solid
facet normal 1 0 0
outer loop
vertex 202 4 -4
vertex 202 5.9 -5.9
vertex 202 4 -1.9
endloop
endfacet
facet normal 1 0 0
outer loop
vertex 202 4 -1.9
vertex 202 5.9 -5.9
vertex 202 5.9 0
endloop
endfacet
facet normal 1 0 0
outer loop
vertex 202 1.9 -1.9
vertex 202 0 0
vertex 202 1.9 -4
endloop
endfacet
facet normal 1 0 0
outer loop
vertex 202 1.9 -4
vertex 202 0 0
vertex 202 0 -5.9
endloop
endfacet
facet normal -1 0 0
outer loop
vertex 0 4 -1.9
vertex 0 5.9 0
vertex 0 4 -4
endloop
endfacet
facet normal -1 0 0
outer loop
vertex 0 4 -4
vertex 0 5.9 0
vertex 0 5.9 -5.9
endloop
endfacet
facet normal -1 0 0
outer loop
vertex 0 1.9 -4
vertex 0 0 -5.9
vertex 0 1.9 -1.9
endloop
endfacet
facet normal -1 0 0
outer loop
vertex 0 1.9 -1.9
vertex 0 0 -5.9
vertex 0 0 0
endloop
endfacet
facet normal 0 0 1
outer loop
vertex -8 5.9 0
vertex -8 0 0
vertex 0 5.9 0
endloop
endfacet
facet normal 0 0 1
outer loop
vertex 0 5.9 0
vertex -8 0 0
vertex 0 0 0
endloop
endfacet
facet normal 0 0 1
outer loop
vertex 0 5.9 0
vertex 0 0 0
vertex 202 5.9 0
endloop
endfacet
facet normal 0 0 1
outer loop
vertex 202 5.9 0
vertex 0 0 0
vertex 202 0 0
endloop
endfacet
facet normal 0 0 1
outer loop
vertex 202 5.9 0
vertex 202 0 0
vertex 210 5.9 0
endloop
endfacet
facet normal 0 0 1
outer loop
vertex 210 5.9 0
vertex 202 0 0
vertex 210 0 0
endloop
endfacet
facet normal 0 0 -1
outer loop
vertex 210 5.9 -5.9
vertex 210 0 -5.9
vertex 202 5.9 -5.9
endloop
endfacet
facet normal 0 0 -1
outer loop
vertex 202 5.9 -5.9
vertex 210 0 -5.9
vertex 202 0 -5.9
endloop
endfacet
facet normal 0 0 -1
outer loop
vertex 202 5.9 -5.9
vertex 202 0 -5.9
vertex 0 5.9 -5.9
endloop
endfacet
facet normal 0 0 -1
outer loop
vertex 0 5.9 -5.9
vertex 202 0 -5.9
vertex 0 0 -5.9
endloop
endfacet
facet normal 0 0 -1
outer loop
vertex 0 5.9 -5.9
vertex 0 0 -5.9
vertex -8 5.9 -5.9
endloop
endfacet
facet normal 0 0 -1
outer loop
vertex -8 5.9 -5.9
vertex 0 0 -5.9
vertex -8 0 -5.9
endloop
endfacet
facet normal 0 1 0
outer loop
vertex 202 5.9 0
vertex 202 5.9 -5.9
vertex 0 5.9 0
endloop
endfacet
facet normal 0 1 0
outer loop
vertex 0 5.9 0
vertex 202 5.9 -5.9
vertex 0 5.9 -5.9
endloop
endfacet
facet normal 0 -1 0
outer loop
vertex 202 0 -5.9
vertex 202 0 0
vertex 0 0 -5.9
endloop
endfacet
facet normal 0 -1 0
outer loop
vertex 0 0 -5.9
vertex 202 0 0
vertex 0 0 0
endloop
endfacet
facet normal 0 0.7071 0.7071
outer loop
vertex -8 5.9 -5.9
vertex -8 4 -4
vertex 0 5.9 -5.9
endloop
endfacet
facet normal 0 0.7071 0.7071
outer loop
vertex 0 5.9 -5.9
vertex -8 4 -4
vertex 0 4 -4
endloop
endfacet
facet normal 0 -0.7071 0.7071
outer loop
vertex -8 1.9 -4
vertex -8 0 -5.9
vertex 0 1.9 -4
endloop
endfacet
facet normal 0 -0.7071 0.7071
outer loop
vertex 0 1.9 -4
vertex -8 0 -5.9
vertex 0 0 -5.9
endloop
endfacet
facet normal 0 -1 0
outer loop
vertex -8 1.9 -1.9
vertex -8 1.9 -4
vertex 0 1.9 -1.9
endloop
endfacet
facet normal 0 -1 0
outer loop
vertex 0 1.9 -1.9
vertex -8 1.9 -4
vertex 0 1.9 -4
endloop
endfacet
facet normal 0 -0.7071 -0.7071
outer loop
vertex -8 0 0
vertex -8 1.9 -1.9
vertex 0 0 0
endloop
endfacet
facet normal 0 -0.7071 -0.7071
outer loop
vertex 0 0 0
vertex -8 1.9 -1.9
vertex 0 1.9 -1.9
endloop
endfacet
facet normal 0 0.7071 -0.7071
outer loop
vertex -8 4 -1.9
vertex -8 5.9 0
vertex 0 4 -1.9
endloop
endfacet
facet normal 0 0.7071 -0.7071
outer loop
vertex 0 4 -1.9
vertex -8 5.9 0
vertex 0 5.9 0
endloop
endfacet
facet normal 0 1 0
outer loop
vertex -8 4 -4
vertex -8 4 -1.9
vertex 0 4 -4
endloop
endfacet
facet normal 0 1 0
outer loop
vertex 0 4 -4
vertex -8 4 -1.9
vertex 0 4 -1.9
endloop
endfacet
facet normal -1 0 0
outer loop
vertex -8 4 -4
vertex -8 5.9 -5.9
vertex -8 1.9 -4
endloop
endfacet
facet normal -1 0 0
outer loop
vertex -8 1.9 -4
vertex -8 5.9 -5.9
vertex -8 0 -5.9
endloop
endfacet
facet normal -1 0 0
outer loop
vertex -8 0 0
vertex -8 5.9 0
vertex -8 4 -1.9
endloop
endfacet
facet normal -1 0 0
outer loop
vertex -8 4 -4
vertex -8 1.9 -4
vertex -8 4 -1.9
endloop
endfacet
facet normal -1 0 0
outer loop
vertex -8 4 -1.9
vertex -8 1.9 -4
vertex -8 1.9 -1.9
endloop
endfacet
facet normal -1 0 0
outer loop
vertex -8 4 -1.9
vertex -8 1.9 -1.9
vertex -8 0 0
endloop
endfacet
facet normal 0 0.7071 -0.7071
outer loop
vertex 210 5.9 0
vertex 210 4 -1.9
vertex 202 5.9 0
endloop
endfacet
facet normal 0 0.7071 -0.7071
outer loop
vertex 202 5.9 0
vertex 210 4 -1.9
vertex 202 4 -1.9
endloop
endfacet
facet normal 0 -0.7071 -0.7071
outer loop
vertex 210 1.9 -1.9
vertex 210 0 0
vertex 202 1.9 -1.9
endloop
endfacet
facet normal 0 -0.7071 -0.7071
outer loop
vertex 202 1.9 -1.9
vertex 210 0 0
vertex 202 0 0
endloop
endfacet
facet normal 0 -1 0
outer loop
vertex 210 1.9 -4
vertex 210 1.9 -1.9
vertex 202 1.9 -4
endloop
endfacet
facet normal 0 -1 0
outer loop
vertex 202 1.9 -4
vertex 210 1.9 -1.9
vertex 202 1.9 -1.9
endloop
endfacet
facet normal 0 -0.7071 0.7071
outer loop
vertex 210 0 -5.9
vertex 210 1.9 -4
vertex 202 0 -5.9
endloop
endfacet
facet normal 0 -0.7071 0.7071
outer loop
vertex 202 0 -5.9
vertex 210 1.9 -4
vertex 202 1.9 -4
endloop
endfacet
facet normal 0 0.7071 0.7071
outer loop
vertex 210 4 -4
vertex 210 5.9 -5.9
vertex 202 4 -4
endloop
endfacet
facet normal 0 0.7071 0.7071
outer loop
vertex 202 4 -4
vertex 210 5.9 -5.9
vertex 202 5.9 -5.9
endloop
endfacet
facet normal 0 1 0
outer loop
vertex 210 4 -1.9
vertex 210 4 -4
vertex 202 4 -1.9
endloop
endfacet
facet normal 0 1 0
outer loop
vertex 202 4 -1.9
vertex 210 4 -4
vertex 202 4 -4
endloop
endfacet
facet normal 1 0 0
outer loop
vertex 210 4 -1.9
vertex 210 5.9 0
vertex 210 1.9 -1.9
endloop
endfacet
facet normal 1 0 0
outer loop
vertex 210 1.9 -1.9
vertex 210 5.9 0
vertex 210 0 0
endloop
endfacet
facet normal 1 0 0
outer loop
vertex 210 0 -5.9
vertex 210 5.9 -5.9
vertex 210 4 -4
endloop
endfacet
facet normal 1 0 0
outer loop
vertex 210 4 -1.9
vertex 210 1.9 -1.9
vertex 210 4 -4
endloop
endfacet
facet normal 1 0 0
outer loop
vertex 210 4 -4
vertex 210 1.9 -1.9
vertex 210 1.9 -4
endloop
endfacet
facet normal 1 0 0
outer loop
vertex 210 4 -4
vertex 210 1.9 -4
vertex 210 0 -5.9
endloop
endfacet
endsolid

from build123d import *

# Parameters (mm, degrees)
SKICA1_W                = 202
SKICA1_H                = 5.9
P_IDAT_VYSUNUT_M1_DEPTH = 5.9
P_IDAT_VYSUNUT_M2_DEPTH = 8
P_IDAT_VYSUNUT_M3_DEPTH = 8


with BuildPart() as part:
    # Skica1 → Přidat vysunutím1 (new body)
    with BuildSketch(Plane(origin=(0, 0, 0), x_dir=(1, 0, 0), z_dir=(0, 1, 0))):
        with Locations((101, 2.95)):
            Rectangle(SKICA1_W, SKICA1_H)
    extrude(amount=P_IDAT_VYSUNUT_M1_DEPTH)

    # Skica2 → Přidat vysunutím2 (add)
    with BuildSketch(Plane.ZY):
        Polygon((-5.9, 5.9), (-5.9, 0), (-4, 1.9), (-1.9, 1.9), (0, 0), (0, 5.9), (-1.9, 4), (-4, 4), align=None)
    extrude(amount=P_IDAT_VYSUNUT_M2_DEPTH)

    # Skica3 → Přidat vysunutím3 (add)
    with BuildSketch(Plane(origin=(202, 0, 0), x_dir=(0, 0, -1), z_dir=(1, 0, 0))):
        Polygon((0, 5.9), (0, 0), (1.9, 1.9), (4, 1.9), (5.9, 0), (5.9, 5.9), (4, 4), (1.9, 4), align=None)
    extrude(amount=P_IDAT_VYSUNUT_M3_DEPTH)


solid = part.part
